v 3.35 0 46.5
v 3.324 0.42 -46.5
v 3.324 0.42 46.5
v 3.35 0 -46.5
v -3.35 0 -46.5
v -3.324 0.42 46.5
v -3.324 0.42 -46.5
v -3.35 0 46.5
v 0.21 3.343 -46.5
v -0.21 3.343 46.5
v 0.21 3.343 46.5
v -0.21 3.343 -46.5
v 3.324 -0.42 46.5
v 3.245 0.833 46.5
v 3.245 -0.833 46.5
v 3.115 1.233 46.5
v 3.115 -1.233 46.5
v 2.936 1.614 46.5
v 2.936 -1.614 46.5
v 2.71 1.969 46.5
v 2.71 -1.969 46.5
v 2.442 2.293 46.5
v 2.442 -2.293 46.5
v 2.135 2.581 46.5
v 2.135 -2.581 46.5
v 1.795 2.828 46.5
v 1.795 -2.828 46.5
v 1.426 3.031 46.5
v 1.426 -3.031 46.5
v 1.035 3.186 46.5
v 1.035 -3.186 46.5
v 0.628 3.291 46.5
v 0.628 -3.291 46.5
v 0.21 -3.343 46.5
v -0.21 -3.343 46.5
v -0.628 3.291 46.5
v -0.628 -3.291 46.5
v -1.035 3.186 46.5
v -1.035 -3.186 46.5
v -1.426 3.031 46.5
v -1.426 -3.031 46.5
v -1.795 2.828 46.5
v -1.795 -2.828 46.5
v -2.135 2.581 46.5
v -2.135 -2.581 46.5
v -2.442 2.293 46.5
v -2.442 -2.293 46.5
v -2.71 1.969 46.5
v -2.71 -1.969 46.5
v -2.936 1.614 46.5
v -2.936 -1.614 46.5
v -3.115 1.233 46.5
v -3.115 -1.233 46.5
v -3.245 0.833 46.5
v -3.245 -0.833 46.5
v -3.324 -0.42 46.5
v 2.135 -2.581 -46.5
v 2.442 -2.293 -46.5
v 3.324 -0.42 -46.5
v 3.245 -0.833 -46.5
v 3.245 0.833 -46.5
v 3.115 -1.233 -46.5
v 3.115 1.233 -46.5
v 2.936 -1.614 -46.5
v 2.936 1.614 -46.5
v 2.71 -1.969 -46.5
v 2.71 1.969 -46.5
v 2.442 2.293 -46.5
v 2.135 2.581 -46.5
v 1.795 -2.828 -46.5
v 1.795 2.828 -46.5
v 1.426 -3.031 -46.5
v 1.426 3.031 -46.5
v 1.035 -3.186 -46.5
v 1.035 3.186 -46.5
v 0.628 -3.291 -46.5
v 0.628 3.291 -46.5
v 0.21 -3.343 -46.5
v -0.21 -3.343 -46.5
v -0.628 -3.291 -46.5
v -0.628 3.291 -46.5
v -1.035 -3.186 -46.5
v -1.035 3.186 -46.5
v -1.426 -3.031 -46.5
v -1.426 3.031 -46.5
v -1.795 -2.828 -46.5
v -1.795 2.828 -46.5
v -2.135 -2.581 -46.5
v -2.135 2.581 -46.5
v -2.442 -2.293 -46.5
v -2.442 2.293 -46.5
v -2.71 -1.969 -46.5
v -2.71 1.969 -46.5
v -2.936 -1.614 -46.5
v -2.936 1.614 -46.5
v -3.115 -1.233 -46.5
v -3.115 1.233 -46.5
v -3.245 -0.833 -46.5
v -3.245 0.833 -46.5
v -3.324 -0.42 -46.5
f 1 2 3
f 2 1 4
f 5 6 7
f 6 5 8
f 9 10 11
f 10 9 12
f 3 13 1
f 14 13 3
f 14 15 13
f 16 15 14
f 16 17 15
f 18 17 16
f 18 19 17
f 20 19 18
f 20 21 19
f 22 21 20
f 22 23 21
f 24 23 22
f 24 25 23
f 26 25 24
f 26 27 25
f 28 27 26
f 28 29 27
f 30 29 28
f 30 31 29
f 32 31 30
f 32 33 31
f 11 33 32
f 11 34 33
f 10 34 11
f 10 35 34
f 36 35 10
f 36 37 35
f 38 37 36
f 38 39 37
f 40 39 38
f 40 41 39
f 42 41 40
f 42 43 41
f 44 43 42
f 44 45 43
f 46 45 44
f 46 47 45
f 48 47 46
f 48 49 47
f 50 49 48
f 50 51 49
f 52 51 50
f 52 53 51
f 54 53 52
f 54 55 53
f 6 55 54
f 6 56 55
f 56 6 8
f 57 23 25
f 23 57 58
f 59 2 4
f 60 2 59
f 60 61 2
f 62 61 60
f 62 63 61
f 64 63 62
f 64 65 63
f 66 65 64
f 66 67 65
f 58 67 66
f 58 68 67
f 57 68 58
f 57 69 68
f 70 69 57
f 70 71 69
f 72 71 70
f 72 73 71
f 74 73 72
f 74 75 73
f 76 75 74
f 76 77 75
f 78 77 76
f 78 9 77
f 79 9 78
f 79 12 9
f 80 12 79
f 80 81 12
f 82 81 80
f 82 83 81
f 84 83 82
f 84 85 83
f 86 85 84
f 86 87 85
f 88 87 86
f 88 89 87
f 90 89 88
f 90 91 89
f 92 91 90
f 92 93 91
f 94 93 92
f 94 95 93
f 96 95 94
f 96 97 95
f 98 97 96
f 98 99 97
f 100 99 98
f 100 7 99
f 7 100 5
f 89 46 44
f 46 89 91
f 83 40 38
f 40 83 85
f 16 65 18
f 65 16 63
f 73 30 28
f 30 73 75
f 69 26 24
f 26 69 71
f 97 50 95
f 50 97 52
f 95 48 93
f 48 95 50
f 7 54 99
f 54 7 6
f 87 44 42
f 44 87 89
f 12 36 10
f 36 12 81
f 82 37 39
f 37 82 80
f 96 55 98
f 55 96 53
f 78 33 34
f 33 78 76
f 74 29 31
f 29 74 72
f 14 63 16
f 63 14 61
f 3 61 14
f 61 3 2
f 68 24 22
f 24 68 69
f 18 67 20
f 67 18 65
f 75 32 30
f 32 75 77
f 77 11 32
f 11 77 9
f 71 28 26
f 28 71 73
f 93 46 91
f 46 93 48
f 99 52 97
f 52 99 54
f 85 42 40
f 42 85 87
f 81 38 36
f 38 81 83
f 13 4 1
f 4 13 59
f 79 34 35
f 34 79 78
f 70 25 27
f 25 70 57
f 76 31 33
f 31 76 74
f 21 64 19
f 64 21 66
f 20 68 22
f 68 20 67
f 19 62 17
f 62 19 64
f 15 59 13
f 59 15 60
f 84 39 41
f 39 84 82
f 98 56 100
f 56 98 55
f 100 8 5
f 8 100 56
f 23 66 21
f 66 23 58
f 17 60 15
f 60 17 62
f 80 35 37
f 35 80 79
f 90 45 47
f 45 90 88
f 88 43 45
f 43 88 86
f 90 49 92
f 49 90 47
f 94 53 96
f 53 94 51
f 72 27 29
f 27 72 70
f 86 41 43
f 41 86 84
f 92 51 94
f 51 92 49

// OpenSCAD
$fn = 50;


difference() {
	union() {
		translate(v = [0, 0, -46.5000000000]) {
			cylinder(h = 93, r = 3.3500000000);
		}
	}
	union() {
		translate(v = [0, 0, -100.0000000000]) {
			cylinder(h = 200, r = 0);
		}
	}
}
